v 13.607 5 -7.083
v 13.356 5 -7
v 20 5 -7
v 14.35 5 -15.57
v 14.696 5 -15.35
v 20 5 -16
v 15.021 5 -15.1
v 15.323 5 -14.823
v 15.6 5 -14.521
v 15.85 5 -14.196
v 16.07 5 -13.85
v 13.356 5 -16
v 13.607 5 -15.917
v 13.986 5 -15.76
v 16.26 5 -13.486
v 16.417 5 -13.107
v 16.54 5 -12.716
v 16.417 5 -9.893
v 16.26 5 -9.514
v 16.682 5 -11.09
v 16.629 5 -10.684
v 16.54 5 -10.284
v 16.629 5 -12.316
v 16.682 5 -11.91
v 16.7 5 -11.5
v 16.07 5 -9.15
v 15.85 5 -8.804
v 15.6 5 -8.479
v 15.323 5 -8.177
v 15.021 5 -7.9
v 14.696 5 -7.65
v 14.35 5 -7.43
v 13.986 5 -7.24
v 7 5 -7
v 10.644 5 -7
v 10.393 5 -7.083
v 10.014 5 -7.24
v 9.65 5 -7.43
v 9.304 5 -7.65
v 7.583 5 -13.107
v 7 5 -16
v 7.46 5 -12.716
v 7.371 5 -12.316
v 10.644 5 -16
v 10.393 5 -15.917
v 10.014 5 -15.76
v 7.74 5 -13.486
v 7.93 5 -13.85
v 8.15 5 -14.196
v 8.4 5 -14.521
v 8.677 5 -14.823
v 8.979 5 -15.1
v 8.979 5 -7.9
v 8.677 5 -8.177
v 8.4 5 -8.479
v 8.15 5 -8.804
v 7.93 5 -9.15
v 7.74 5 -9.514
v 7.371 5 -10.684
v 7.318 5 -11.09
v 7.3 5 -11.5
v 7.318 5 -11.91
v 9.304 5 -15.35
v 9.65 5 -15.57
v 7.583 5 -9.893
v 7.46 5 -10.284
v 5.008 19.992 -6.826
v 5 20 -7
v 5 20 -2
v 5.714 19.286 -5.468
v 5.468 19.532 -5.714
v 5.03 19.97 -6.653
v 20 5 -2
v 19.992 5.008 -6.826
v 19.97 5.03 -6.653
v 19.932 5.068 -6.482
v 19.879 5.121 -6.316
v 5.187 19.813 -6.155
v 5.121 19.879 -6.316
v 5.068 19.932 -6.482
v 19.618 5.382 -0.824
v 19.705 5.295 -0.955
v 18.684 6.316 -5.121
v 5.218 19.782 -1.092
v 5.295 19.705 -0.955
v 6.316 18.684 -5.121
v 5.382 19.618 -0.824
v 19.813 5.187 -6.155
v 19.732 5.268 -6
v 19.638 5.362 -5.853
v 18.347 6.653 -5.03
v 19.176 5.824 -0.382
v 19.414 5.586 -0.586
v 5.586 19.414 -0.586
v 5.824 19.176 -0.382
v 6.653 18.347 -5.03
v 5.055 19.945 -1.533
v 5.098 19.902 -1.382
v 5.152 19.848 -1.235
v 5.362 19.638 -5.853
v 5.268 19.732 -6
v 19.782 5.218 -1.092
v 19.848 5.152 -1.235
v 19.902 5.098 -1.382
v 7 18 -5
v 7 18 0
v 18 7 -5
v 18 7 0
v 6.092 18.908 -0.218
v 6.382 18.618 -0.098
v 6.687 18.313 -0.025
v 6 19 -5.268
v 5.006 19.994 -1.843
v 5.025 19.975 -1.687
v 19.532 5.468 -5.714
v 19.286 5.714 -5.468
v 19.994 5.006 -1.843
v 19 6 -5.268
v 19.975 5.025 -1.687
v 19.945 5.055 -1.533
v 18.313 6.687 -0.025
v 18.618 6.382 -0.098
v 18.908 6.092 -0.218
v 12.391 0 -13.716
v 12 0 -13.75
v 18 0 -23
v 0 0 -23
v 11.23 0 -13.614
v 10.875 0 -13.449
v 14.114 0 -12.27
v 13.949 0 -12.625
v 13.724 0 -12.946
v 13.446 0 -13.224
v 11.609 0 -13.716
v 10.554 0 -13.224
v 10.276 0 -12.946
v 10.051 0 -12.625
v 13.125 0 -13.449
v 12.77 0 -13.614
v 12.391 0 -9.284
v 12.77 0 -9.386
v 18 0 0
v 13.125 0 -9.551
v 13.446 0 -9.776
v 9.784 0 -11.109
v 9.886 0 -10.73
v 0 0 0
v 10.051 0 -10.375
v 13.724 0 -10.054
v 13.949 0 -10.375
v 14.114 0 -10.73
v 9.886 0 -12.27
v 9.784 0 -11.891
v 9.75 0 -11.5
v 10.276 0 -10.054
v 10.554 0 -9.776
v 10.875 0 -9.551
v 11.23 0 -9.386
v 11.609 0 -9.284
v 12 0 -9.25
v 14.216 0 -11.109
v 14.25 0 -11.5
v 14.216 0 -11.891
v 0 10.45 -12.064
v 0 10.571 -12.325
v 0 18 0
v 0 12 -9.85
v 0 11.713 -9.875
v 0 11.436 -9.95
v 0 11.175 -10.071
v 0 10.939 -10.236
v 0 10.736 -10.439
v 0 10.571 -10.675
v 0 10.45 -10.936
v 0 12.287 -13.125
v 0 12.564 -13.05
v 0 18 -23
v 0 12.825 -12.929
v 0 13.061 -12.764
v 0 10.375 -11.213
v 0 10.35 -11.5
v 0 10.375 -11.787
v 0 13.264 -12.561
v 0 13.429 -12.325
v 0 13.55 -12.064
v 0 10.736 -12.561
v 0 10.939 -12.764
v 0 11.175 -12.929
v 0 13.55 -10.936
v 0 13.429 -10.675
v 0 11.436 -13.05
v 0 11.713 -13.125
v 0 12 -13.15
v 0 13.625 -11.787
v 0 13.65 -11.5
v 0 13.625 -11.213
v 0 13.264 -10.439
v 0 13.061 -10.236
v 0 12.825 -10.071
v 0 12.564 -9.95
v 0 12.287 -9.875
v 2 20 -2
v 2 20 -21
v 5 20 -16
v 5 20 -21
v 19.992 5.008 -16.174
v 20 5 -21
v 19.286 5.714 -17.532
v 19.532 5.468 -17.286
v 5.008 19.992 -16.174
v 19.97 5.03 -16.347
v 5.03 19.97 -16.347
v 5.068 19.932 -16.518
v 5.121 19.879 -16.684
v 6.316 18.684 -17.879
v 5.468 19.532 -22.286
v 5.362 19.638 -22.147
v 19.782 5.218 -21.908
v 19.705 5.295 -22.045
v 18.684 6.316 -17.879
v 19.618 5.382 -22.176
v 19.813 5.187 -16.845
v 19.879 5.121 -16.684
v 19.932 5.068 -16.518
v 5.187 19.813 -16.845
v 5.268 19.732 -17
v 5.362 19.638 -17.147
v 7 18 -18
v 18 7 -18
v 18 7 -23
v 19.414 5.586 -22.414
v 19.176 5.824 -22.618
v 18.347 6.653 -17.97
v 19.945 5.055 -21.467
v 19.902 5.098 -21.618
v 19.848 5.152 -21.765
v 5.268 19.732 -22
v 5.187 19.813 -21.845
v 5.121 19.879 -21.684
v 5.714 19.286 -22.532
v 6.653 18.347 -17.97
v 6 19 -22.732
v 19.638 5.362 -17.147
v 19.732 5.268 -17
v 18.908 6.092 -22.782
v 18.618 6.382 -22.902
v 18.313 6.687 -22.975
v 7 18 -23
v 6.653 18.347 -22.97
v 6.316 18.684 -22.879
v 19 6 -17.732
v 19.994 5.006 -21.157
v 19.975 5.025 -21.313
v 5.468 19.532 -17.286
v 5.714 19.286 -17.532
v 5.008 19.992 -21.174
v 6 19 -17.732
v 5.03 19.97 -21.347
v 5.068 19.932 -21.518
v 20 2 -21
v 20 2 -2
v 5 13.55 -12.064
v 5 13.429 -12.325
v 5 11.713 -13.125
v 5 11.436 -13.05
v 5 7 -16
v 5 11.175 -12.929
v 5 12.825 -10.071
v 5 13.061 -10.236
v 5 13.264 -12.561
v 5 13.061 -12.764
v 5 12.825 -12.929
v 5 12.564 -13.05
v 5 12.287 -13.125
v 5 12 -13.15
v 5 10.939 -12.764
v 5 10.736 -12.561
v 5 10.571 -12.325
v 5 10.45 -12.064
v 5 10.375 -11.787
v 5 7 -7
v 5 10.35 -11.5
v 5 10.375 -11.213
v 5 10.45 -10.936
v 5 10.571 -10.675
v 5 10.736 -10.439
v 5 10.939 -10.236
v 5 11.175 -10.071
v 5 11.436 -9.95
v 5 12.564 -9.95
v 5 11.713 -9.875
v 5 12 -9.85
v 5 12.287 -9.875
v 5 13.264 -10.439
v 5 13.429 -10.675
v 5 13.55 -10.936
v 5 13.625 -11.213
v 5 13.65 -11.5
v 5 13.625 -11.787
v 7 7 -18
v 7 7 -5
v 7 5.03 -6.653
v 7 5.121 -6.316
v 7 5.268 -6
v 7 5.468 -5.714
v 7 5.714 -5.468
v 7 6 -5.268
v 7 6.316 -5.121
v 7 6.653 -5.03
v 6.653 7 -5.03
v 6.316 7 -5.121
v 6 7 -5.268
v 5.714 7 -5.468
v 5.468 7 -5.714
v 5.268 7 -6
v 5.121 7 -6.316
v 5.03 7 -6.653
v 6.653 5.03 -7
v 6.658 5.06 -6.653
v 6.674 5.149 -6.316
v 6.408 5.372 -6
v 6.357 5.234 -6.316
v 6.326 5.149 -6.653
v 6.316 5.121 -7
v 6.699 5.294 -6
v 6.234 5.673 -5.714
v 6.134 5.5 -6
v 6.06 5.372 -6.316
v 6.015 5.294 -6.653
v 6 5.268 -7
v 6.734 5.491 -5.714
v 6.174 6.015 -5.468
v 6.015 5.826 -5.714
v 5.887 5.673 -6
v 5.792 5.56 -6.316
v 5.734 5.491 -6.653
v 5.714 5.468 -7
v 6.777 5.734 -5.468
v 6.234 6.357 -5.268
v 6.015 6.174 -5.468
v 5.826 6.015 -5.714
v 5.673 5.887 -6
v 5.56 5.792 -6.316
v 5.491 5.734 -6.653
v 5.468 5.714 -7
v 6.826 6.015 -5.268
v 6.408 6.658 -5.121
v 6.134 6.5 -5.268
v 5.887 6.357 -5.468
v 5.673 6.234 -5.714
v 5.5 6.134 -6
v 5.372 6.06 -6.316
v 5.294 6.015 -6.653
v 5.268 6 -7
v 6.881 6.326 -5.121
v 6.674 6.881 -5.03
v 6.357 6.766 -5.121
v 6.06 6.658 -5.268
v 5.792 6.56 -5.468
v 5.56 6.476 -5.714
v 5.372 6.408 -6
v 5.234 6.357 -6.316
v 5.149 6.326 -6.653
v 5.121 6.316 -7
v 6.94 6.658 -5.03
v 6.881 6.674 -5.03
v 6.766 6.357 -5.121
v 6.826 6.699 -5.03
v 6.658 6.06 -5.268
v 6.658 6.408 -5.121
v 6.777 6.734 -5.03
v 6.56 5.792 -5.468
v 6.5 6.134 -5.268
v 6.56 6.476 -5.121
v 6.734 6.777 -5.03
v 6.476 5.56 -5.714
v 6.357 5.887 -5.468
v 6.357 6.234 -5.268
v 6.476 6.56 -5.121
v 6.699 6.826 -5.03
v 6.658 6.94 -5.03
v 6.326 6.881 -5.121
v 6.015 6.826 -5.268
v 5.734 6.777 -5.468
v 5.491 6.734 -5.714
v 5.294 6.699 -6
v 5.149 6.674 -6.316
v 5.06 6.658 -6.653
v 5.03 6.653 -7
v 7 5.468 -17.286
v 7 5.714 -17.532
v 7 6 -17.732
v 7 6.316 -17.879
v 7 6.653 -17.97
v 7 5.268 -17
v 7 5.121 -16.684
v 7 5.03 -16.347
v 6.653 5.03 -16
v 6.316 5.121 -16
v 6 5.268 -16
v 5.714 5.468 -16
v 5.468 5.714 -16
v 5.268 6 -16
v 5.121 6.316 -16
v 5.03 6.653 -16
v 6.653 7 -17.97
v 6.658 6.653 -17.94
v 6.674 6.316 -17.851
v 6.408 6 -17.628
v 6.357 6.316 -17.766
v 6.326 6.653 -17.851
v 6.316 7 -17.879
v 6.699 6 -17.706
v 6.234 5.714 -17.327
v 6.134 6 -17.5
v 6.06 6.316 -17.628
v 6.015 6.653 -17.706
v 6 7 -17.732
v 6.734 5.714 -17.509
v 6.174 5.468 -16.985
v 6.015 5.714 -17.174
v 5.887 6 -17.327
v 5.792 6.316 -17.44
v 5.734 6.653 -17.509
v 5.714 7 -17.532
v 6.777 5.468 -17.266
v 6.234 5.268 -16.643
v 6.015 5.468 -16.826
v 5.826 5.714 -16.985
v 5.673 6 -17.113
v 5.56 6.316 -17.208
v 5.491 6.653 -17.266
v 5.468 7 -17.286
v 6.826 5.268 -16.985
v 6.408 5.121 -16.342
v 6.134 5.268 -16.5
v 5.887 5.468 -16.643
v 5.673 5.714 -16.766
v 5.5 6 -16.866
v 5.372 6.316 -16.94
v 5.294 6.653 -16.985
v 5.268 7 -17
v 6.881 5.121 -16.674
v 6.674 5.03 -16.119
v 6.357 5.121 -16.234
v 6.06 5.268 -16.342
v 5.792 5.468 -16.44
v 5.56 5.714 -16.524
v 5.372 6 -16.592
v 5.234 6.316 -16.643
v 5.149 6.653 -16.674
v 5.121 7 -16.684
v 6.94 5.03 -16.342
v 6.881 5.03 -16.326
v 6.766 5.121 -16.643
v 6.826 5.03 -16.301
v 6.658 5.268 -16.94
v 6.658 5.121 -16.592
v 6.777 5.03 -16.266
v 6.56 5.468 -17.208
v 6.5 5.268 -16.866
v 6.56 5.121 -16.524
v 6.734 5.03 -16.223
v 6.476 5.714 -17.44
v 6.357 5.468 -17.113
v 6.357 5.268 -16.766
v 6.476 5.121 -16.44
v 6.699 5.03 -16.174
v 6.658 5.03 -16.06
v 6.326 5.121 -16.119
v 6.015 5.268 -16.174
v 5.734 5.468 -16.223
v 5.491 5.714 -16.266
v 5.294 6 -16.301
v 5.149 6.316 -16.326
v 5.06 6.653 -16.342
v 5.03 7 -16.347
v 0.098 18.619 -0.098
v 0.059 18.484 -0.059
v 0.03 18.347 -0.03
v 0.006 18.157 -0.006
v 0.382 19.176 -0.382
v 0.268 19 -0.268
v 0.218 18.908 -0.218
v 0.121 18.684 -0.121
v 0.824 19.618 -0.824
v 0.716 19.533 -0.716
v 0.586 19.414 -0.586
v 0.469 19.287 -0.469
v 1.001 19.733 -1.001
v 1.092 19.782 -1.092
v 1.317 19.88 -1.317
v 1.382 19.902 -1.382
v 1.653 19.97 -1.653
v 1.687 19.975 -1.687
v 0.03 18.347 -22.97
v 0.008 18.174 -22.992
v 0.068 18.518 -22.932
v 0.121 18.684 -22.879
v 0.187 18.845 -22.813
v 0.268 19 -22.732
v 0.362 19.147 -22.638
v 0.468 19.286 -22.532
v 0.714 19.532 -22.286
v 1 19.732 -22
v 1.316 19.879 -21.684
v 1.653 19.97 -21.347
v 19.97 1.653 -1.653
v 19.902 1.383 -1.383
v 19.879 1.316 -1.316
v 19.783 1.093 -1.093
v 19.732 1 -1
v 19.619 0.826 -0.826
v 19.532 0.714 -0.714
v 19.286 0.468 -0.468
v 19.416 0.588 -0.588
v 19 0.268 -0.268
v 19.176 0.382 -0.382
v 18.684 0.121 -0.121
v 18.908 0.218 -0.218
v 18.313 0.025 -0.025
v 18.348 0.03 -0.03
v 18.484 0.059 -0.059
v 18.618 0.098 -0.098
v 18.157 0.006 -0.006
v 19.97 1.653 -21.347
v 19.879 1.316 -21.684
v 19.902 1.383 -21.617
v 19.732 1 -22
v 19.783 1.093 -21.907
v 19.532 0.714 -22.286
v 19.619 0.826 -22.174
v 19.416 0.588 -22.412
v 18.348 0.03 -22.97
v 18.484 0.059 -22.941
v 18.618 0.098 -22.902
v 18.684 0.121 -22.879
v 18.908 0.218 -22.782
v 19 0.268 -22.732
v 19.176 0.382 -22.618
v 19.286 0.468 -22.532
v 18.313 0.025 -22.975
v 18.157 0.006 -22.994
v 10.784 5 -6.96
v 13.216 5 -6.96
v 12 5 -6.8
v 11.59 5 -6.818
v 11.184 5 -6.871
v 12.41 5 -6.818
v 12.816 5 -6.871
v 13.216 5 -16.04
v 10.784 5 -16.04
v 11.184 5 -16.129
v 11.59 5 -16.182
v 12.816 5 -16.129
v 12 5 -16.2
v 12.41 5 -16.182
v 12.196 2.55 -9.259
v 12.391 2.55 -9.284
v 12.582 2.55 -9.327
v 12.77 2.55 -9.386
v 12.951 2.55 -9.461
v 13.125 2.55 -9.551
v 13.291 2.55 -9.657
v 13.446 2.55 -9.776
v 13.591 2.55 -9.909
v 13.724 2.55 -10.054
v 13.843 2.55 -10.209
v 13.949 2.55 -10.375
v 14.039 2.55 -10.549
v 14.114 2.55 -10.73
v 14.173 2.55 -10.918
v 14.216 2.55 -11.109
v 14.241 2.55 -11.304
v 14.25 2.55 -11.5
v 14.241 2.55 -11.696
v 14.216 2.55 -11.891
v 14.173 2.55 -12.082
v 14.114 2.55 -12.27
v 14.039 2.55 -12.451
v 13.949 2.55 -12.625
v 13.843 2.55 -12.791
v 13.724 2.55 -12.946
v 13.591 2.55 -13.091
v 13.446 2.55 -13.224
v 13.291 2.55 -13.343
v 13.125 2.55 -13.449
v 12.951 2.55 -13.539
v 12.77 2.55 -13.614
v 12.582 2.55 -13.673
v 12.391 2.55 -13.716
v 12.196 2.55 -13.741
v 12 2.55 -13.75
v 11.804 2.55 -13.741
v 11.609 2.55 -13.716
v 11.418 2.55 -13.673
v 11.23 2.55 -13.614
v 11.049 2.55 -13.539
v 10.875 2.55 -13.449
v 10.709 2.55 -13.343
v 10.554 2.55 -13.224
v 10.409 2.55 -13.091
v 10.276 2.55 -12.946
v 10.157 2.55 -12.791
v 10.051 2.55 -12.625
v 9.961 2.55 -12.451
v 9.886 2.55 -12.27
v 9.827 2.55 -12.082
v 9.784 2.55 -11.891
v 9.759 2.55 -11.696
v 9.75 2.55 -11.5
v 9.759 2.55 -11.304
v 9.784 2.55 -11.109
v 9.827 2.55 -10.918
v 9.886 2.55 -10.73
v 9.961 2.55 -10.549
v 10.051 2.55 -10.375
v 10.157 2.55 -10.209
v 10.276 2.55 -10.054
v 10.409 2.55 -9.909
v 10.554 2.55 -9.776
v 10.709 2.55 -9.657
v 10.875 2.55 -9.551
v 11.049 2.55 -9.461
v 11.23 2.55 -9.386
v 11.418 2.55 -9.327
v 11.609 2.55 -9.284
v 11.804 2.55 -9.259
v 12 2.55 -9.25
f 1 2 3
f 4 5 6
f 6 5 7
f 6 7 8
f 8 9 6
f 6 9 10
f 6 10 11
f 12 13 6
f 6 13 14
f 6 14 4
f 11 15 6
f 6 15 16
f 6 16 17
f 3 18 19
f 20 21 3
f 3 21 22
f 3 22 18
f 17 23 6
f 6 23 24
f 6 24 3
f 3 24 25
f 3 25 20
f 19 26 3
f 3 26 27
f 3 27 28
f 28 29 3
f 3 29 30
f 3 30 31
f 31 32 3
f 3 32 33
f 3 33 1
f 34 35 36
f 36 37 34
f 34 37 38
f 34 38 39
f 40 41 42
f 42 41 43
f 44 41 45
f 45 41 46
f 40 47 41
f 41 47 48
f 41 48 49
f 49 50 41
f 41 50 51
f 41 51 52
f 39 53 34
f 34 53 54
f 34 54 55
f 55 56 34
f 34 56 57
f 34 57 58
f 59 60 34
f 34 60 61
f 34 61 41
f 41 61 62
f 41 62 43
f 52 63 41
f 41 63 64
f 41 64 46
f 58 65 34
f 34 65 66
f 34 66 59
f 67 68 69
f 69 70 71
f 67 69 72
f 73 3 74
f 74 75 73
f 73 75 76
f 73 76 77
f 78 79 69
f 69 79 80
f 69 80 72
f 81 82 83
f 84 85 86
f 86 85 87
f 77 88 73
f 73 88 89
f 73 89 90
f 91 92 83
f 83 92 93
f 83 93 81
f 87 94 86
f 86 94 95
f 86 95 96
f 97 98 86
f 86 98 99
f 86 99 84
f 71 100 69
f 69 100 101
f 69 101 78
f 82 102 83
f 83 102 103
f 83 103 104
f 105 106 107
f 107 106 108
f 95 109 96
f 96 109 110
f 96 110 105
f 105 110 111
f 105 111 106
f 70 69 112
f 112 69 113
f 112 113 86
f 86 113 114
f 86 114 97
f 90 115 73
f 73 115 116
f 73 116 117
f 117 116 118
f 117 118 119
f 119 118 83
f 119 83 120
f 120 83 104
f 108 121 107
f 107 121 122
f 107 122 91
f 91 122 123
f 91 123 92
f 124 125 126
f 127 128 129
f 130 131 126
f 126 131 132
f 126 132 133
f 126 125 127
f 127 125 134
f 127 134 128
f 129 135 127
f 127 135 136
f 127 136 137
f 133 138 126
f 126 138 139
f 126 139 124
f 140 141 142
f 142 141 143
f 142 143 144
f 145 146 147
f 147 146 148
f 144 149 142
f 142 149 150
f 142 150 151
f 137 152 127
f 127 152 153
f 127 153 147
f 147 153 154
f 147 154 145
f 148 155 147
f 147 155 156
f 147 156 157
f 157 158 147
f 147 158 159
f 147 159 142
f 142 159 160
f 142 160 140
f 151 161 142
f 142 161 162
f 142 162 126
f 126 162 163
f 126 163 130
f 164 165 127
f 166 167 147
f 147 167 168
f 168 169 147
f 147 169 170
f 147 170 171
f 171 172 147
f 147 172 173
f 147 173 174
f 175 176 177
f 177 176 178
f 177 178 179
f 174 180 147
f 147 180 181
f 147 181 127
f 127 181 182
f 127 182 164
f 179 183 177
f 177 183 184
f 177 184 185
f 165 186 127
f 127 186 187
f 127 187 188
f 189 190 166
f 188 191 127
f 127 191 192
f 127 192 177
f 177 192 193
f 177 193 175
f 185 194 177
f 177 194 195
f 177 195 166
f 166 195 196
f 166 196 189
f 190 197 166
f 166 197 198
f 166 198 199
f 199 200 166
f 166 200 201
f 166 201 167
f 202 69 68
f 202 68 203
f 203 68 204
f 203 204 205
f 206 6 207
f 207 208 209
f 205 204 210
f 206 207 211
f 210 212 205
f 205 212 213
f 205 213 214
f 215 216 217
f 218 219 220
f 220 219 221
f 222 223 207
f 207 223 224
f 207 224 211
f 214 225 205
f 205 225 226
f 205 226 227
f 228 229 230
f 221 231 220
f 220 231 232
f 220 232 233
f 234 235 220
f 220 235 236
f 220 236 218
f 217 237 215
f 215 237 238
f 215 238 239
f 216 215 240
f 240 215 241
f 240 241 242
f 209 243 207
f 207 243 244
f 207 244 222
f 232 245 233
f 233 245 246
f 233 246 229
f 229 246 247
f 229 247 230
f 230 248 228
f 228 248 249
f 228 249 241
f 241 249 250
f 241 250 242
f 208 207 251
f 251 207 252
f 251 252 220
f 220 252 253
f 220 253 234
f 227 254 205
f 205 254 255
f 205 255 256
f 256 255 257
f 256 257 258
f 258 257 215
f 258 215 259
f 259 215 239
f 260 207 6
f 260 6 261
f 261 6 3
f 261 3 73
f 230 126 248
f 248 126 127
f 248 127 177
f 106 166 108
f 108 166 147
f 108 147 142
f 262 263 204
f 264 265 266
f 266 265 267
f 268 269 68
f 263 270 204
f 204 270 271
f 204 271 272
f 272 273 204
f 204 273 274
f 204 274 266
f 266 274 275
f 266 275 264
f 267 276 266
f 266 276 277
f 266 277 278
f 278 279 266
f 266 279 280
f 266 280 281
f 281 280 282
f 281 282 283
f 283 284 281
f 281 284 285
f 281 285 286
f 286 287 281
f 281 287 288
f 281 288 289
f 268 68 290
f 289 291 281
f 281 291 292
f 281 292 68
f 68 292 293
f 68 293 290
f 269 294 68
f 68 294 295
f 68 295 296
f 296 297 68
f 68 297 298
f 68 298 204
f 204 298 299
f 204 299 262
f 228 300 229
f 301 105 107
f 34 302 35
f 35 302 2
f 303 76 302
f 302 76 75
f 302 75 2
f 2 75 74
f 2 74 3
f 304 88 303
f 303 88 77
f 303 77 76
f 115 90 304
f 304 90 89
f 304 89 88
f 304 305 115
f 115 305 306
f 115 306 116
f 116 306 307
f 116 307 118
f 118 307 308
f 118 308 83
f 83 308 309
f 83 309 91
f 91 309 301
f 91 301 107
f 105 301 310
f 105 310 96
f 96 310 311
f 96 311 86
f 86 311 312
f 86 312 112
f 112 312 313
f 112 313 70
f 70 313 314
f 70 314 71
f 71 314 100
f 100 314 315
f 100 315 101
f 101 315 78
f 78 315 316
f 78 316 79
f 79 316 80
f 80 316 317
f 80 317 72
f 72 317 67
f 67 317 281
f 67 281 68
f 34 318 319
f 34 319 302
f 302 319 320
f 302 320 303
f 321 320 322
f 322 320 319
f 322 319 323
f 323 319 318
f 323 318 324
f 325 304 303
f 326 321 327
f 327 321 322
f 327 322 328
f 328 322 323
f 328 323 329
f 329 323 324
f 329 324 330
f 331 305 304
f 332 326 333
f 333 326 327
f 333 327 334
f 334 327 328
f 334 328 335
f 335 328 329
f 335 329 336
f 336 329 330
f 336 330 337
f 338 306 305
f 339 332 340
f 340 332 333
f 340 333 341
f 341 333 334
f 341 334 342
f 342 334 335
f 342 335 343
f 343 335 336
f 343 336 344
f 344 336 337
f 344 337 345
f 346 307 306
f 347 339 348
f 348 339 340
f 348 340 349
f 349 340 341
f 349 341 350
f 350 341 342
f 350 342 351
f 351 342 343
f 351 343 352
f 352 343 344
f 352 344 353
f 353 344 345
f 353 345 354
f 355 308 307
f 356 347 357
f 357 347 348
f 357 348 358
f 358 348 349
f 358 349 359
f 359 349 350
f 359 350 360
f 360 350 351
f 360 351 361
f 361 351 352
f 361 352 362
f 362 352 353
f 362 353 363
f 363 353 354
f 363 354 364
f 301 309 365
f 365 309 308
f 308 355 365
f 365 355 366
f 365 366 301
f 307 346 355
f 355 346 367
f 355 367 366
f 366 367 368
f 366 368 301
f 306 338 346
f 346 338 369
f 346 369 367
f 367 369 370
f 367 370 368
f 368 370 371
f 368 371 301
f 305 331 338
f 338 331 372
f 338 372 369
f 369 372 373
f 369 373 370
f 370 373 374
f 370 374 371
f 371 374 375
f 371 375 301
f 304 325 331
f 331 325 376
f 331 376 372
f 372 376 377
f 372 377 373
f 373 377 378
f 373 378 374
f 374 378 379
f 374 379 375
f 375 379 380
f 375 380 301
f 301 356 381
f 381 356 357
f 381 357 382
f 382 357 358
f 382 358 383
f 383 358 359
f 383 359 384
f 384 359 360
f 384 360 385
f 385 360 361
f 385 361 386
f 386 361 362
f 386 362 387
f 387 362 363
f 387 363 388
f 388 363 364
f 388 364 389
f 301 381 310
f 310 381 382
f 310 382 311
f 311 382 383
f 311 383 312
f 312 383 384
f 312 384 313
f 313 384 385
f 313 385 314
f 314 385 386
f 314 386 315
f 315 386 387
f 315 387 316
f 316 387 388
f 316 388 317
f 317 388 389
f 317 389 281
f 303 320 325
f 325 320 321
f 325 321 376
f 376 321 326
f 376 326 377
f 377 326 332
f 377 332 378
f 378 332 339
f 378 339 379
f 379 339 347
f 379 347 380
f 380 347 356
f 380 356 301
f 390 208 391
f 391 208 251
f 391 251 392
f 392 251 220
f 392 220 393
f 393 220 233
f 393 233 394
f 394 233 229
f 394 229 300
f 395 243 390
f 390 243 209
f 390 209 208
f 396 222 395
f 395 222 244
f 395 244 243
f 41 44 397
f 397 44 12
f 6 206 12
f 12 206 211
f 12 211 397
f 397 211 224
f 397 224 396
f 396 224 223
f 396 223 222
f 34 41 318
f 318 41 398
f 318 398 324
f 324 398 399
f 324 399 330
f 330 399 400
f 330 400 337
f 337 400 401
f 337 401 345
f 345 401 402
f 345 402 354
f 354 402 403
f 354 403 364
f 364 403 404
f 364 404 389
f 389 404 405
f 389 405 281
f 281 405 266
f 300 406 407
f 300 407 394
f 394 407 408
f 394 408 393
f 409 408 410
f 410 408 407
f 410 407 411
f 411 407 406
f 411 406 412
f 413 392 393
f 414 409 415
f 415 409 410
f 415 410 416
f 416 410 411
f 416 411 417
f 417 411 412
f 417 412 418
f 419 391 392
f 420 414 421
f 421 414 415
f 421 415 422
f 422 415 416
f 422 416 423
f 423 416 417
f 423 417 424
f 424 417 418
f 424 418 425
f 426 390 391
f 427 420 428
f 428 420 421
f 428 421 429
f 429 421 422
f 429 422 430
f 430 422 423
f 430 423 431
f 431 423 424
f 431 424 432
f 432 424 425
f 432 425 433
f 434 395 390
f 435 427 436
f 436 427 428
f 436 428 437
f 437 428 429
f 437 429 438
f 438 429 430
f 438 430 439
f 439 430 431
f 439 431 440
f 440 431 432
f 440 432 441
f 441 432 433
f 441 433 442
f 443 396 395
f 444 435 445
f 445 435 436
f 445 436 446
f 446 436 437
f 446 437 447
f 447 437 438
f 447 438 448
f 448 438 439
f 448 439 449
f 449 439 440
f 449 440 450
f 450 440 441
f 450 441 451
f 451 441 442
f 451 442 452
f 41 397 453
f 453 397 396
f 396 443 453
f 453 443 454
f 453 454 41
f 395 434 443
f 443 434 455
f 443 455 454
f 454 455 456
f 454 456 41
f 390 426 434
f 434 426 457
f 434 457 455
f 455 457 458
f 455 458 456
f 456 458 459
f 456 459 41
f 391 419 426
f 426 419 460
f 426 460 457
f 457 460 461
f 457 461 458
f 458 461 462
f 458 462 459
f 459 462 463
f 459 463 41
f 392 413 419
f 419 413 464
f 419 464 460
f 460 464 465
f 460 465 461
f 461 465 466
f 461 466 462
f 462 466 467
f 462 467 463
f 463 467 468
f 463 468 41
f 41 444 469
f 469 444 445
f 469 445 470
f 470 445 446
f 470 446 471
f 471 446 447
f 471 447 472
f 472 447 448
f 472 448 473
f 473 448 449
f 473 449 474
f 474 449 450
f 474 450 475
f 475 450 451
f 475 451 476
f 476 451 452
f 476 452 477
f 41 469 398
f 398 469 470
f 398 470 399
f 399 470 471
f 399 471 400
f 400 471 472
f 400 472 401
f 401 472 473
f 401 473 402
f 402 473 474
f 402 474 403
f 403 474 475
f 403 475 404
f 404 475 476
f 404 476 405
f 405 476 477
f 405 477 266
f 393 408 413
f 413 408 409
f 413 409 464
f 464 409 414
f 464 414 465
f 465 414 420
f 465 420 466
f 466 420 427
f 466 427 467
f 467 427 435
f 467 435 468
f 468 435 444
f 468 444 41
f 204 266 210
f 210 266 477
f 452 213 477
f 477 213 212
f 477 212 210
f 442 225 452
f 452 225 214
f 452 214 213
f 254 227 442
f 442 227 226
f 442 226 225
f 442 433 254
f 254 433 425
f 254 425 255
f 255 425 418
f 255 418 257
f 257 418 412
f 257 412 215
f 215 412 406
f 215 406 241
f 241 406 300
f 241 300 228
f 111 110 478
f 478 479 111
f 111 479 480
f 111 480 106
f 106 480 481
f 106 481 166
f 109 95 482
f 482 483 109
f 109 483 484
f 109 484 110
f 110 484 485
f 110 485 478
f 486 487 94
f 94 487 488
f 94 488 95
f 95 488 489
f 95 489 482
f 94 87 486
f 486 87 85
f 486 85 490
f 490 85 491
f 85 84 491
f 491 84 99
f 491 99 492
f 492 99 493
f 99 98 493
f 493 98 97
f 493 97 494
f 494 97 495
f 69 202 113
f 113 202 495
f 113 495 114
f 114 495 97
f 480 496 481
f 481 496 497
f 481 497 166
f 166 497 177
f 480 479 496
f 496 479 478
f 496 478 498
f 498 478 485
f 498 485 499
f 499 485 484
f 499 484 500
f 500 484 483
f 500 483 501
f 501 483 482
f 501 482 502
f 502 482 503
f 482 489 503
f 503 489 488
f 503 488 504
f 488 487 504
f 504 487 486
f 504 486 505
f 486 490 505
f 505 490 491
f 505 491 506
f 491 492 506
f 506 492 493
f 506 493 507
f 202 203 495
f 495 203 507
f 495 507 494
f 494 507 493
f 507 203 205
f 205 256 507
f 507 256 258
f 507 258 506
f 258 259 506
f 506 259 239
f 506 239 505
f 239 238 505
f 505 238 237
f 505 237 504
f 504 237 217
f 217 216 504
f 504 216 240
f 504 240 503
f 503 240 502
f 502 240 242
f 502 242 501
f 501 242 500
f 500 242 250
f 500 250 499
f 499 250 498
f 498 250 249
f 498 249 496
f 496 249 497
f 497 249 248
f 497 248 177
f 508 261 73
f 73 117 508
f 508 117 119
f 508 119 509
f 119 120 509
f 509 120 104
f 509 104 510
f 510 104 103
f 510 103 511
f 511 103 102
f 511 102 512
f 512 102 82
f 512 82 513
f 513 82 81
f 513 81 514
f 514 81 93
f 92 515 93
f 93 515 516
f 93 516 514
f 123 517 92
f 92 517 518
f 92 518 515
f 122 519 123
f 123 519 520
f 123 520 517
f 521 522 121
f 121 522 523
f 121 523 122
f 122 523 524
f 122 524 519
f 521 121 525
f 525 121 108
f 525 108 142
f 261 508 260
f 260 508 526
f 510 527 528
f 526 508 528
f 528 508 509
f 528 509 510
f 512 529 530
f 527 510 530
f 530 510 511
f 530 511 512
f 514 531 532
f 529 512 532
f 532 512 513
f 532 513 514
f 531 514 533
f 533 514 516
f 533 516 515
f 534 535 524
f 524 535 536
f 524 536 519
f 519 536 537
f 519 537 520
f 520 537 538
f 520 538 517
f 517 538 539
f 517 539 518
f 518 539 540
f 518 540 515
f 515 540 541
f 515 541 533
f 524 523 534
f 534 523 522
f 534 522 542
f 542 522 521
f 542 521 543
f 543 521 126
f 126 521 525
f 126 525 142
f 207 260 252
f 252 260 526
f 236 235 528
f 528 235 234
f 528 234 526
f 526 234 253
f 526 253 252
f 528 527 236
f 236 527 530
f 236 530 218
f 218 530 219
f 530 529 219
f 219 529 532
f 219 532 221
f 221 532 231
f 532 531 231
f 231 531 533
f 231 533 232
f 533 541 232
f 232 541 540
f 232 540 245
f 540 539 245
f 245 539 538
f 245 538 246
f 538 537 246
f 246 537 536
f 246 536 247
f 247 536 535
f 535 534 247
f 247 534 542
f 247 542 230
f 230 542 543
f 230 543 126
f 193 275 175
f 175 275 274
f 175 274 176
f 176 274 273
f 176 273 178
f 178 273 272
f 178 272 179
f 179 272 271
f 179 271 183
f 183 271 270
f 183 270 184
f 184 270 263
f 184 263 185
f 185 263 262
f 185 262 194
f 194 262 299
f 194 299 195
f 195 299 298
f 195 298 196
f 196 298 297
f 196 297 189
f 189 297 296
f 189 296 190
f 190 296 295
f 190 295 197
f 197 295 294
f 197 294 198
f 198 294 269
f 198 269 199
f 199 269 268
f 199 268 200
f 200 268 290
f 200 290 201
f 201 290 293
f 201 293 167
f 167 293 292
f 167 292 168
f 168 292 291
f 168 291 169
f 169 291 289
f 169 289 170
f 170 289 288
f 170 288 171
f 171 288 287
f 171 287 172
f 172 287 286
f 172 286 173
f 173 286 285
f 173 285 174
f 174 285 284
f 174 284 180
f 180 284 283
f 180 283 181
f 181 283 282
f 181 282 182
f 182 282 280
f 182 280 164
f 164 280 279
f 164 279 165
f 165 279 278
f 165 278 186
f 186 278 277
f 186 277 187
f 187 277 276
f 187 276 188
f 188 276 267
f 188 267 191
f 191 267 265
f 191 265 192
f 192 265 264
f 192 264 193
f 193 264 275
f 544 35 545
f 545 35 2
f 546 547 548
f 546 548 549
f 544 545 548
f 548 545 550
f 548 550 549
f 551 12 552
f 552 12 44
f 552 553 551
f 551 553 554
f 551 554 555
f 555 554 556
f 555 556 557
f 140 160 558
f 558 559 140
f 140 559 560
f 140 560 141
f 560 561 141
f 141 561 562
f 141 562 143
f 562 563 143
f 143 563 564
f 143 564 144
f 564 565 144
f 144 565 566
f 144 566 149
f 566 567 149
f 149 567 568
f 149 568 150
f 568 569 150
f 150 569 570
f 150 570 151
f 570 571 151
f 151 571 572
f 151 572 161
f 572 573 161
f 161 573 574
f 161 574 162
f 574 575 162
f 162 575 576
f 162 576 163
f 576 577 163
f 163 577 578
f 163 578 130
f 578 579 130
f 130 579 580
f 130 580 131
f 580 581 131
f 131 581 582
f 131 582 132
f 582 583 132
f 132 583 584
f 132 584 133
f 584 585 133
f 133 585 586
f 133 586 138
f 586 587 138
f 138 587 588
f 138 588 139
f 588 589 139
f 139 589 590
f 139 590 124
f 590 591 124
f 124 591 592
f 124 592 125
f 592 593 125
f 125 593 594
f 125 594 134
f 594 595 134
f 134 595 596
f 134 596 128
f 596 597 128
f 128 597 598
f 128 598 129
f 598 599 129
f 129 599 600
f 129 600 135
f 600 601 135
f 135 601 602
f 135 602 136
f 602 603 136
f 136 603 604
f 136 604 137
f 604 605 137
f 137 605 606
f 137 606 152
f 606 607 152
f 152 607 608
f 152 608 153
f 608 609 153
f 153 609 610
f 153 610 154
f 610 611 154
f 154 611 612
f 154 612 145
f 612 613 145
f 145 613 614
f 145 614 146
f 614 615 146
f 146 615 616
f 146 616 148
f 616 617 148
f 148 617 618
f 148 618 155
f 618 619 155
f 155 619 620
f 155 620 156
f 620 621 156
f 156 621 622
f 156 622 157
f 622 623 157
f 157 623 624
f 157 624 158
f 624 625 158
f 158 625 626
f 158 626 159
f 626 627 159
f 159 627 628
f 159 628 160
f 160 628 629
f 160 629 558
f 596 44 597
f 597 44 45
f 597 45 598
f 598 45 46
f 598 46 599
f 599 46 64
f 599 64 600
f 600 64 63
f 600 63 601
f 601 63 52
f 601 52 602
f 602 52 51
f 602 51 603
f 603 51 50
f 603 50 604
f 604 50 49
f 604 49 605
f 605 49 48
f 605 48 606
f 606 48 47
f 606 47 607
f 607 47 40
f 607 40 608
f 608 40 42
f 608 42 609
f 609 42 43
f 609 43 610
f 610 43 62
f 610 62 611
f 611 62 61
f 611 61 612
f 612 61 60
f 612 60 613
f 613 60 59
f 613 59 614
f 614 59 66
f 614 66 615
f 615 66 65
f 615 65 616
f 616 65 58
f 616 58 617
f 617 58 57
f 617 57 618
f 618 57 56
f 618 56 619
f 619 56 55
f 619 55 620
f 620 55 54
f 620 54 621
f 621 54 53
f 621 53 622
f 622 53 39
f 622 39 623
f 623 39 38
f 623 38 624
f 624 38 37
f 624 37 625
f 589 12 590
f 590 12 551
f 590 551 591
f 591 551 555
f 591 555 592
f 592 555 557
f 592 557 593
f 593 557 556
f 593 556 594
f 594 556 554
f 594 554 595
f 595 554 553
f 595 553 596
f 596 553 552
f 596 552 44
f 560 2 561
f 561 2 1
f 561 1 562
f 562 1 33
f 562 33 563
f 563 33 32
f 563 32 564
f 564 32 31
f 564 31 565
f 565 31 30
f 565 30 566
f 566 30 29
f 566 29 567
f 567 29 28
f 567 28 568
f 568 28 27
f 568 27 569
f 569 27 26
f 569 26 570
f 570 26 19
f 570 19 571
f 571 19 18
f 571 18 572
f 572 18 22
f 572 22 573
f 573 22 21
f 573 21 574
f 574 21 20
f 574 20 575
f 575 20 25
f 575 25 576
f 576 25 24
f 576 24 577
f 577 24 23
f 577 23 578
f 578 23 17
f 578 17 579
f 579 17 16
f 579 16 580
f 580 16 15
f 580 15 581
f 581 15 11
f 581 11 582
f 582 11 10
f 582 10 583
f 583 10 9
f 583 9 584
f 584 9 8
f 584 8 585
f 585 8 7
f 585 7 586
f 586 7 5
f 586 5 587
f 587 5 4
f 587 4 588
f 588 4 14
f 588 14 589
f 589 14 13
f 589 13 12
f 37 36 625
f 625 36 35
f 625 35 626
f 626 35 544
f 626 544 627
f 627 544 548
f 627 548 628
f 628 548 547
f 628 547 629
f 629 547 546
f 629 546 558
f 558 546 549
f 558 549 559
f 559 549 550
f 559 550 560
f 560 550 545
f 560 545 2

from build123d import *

# Parameters (mm, degrees)
BOSS_EXTRUDE2_DEPTH         = 23
SHELL1_START                = 5
SHELL1_OUTLINE_W            = 16
SHELL1_OUTLINE_H            = 13
SHELL1_DEPTH                = 15
FILLET1_R                   = 2
FILLET3_R                   = 2
TAP_DRILL_FOR_M4X0_7_TAP1_D = 3.3


# Read off the part's stored shape, not the designer's step: Shell1
with BuildPart() as part:
    # Sketch1 → Boss-Extrude2 (new body)
    with BuildSketch(Plane.XY):
        Polygon((0, 0), (0, 20), (5, 20), (20, 5), (20, 0), align=None)
    extrude(amount=-BOSS_EXTRUDE2_DEPTH)

    # Shell1 outline → Shell1 (cut)
    with BuildSketch(Plane(origin=(0, 0, 0), x_dir=(1, 0, 0), z_dir=(0, 1, 0)).offset(SHELL1_START)):
        with Locations((13, 11.5)):
            Rectangle(SHELL1_OUTLINE_W, SHELL1_OUTLINE_H)
    extrude(amount=SHELL1_DEPTH, mode=Mode.SUBTRACT)

    # Fillet1
    fillet1_edges = [part.edges().sort_by_distance(p)[0] for p in [
        (12.5, 5, -18),
        (5, 12.5, -18),
        (5, 5, -11.5),
        (12.5, 5, -5),
        (5, 12.5, -5),
    ]]
    fillet(fillet1_edges, radius=FILLET1_R)

    # Fillet3
    fillet3_edges = [part.edges().sort_by_distance(p)[0] for p in [
        (2.5, 20, -23),
        (2.5, 20, 0),
        (20, 2.5, 0),
        (20, 2.5, -23),
        (0, 20, -11.5),
        (20, 0, -11.5),
    ]]
    fillet(fillet3_edges, radius=FILLET3_R)

    # Tap Drill for M4x0.7 Tap1 (through all)
    with Locations(Plane(origin=(5, 12, -11.5), x_dir=(0, 0, 1), z_dir=(1, 0, 0))):
        with Locations((0, 0)):
            Hole(TAP_DRILL_FOR_M4X0_7_TAP1_D / 2)

    # Sketch9 → CSK for M4 Flat Head Machine Screw2 (revolve, cut)
    with BuildSketch(Plane(origin=(12, 5, -11.5), x_dir=(0, 0, 1), z_dir=(1, 0, 0))):
        Polygon((0, 0), (0, 5), (2.25, 5), (2.25, 2.45), (4.7, 0), align=None)
    revolve(axis=Axis((12, 11.35, -11.5), (0, -1, 0)), mode=Mode.SUBTRACT)


solid = part.part
